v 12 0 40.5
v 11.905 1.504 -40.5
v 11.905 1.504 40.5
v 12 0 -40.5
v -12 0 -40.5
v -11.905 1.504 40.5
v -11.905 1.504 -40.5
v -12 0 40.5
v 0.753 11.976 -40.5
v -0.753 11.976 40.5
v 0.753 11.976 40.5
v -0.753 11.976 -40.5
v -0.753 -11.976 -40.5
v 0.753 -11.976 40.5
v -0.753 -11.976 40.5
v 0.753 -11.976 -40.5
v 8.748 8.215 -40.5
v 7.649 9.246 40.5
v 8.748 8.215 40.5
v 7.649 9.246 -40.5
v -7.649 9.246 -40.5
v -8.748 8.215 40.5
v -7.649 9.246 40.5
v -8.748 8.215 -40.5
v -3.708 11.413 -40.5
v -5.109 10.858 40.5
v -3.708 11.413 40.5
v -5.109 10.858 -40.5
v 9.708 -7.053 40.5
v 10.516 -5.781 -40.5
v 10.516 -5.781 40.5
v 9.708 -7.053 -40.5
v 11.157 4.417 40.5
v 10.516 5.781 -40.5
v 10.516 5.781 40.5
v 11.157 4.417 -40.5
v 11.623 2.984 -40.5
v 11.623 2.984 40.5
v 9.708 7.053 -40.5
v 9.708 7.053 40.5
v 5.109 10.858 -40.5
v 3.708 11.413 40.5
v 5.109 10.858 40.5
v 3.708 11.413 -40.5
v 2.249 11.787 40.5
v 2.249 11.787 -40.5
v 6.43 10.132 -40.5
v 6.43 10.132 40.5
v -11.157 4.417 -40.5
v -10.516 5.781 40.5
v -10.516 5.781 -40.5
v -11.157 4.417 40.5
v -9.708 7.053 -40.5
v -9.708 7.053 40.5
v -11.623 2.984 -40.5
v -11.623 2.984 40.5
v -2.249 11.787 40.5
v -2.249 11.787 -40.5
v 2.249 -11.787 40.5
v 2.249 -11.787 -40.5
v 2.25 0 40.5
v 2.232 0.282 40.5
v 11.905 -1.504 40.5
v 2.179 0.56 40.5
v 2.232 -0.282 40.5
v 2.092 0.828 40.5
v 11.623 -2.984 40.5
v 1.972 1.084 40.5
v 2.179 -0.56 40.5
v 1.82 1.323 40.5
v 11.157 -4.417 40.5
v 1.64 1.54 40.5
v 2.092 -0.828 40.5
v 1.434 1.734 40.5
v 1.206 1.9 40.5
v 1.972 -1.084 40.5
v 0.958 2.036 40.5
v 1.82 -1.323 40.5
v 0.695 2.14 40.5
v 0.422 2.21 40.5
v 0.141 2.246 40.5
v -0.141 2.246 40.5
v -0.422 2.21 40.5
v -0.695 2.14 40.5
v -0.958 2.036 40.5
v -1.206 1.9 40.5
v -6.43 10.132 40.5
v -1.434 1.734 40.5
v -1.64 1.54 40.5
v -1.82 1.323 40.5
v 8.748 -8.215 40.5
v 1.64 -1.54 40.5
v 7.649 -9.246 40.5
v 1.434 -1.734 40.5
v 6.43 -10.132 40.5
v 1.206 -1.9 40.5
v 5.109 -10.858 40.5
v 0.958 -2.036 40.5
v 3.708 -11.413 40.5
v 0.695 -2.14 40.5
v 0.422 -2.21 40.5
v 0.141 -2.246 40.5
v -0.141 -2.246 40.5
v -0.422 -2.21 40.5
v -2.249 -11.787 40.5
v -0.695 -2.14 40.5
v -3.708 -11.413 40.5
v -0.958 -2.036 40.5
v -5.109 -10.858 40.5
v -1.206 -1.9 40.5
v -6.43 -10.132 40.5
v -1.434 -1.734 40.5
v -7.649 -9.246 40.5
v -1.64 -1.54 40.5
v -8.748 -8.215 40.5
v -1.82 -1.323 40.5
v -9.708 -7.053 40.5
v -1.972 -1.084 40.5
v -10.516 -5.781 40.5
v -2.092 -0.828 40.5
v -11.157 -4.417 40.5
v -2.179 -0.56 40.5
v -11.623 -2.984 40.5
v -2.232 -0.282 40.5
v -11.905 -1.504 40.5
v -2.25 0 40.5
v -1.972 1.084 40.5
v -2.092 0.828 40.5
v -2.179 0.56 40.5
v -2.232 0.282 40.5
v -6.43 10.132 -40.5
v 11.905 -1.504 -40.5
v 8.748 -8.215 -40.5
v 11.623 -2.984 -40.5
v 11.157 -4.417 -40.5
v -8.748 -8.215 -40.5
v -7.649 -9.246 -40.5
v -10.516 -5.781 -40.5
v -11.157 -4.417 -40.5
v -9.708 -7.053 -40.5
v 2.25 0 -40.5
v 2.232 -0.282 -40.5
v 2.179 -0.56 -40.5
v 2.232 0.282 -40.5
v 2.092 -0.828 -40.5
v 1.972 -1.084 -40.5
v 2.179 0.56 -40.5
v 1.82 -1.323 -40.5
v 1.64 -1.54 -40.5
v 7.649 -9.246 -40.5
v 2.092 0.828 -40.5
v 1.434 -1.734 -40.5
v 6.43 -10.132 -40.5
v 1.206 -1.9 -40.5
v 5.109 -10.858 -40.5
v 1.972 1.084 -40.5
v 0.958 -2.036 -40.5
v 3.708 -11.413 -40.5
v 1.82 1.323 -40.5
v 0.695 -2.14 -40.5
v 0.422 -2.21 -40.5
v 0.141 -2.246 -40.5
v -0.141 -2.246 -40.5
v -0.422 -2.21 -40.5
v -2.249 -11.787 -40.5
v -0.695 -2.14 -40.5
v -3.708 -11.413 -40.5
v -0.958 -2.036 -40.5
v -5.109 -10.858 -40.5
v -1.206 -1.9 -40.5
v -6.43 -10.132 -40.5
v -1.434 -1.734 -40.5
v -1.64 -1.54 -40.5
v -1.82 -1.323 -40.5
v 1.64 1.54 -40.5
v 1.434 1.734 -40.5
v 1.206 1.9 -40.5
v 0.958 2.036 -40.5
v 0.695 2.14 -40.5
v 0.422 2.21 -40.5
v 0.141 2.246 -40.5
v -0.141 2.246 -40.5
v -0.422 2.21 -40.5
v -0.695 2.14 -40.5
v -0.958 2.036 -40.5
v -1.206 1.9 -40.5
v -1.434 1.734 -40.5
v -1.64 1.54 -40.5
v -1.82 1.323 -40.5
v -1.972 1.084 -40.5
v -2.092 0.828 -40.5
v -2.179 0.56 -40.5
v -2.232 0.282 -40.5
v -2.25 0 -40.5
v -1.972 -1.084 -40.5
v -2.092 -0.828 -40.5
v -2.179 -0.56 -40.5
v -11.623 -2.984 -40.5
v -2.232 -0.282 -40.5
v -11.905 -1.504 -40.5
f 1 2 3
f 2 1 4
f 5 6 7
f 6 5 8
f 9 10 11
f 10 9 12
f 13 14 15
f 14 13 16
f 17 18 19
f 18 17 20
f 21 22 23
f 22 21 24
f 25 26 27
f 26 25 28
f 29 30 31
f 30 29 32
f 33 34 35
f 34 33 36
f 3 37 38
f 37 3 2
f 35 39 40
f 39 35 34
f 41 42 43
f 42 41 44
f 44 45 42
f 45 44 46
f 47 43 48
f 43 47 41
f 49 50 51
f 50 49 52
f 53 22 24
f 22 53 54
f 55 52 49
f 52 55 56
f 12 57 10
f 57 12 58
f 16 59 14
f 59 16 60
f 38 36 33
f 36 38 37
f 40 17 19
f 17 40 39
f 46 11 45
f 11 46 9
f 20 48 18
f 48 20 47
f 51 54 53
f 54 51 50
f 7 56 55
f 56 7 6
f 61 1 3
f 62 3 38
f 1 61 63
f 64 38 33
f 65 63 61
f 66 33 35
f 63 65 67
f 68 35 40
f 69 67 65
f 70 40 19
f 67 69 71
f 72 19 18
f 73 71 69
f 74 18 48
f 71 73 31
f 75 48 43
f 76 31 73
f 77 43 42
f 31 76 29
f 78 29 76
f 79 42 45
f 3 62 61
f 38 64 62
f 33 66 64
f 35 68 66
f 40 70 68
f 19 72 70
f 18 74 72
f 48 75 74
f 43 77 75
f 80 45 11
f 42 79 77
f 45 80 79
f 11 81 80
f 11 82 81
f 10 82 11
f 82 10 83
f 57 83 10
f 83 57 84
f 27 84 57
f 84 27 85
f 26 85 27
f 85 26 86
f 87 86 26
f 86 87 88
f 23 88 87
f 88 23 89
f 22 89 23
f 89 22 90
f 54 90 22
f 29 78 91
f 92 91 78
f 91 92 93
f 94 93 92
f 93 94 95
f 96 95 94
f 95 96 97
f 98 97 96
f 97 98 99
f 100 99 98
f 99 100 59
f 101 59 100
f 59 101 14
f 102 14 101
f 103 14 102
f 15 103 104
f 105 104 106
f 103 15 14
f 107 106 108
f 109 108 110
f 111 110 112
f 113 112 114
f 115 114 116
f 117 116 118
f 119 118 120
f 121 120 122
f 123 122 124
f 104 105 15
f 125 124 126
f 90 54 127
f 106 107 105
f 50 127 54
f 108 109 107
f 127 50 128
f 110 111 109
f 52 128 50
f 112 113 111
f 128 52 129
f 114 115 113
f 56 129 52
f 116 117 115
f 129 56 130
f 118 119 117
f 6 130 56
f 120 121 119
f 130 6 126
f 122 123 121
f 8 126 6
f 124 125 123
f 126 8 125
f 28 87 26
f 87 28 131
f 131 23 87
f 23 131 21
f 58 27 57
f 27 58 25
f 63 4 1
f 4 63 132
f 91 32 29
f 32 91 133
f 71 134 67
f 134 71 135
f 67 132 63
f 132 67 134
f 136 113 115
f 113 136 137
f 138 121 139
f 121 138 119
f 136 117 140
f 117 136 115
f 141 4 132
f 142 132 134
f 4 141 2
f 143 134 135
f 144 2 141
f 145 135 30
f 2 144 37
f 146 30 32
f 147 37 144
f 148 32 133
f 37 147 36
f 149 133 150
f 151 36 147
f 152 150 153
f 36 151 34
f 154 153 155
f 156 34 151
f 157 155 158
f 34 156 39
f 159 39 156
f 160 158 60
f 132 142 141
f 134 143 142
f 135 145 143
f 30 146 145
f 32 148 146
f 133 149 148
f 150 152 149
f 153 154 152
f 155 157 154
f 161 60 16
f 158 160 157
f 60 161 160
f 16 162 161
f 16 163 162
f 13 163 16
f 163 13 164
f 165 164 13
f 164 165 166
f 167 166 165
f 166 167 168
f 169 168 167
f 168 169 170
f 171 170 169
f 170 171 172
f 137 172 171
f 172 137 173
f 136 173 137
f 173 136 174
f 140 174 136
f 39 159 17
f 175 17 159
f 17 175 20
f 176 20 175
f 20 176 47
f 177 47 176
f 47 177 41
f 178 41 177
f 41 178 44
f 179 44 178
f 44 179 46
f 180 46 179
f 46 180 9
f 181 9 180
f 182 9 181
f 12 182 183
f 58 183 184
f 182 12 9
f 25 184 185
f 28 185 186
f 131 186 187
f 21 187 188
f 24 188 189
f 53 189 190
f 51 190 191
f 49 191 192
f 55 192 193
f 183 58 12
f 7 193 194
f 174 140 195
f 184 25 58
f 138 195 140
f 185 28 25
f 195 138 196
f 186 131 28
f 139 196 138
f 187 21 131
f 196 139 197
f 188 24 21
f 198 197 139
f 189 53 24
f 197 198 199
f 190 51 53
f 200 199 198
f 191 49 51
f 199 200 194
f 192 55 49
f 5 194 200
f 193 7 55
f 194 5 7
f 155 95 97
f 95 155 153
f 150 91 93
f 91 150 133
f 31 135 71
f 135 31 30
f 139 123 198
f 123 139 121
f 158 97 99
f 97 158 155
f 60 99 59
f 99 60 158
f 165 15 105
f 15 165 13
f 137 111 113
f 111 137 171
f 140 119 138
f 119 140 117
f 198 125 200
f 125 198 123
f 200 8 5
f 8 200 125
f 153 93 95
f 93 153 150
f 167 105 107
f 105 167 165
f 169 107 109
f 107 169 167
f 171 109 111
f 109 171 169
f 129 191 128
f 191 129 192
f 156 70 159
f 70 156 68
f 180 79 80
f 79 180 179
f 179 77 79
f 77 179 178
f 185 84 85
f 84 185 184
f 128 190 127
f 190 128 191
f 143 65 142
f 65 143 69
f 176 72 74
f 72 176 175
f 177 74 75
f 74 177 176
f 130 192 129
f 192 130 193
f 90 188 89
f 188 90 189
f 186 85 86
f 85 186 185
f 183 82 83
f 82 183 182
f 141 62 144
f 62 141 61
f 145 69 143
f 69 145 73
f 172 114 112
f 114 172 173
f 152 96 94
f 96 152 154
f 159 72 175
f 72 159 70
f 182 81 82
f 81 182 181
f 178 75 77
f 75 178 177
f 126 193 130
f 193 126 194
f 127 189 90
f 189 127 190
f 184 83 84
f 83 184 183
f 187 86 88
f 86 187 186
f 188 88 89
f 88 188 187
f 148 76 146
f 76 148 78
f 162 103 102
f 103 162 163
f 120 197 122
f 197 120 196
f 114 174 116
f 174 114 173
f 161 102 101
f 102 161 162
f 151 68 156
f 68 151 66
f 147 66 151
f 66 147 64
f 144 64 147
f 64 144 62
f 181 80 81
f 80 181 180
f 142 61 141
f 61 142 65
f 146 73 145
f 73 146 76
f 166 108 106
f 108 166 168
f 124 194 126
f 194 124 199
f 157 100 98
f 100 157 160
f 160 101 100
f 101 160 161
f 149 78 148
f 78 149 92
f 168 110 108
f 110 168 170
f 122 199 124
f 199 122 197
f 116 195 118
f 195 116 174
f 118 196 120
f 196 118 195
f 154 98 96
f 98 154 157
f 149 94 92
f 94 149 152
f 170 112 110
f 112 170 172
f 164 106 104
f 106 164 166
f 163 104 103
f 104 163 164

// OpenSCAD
$fn = 50;


difference() {
	union() {
		translate(v = [0, 0, -40.5000000000]) {
			cylinder(h = 81, r = 12.0000000000);
		}
	}
	union() {
		translate(v = [0, 0, -100.0000000000]) {
			cylinder(h = 200, r = 2.2500000000);
		}
	}
}
